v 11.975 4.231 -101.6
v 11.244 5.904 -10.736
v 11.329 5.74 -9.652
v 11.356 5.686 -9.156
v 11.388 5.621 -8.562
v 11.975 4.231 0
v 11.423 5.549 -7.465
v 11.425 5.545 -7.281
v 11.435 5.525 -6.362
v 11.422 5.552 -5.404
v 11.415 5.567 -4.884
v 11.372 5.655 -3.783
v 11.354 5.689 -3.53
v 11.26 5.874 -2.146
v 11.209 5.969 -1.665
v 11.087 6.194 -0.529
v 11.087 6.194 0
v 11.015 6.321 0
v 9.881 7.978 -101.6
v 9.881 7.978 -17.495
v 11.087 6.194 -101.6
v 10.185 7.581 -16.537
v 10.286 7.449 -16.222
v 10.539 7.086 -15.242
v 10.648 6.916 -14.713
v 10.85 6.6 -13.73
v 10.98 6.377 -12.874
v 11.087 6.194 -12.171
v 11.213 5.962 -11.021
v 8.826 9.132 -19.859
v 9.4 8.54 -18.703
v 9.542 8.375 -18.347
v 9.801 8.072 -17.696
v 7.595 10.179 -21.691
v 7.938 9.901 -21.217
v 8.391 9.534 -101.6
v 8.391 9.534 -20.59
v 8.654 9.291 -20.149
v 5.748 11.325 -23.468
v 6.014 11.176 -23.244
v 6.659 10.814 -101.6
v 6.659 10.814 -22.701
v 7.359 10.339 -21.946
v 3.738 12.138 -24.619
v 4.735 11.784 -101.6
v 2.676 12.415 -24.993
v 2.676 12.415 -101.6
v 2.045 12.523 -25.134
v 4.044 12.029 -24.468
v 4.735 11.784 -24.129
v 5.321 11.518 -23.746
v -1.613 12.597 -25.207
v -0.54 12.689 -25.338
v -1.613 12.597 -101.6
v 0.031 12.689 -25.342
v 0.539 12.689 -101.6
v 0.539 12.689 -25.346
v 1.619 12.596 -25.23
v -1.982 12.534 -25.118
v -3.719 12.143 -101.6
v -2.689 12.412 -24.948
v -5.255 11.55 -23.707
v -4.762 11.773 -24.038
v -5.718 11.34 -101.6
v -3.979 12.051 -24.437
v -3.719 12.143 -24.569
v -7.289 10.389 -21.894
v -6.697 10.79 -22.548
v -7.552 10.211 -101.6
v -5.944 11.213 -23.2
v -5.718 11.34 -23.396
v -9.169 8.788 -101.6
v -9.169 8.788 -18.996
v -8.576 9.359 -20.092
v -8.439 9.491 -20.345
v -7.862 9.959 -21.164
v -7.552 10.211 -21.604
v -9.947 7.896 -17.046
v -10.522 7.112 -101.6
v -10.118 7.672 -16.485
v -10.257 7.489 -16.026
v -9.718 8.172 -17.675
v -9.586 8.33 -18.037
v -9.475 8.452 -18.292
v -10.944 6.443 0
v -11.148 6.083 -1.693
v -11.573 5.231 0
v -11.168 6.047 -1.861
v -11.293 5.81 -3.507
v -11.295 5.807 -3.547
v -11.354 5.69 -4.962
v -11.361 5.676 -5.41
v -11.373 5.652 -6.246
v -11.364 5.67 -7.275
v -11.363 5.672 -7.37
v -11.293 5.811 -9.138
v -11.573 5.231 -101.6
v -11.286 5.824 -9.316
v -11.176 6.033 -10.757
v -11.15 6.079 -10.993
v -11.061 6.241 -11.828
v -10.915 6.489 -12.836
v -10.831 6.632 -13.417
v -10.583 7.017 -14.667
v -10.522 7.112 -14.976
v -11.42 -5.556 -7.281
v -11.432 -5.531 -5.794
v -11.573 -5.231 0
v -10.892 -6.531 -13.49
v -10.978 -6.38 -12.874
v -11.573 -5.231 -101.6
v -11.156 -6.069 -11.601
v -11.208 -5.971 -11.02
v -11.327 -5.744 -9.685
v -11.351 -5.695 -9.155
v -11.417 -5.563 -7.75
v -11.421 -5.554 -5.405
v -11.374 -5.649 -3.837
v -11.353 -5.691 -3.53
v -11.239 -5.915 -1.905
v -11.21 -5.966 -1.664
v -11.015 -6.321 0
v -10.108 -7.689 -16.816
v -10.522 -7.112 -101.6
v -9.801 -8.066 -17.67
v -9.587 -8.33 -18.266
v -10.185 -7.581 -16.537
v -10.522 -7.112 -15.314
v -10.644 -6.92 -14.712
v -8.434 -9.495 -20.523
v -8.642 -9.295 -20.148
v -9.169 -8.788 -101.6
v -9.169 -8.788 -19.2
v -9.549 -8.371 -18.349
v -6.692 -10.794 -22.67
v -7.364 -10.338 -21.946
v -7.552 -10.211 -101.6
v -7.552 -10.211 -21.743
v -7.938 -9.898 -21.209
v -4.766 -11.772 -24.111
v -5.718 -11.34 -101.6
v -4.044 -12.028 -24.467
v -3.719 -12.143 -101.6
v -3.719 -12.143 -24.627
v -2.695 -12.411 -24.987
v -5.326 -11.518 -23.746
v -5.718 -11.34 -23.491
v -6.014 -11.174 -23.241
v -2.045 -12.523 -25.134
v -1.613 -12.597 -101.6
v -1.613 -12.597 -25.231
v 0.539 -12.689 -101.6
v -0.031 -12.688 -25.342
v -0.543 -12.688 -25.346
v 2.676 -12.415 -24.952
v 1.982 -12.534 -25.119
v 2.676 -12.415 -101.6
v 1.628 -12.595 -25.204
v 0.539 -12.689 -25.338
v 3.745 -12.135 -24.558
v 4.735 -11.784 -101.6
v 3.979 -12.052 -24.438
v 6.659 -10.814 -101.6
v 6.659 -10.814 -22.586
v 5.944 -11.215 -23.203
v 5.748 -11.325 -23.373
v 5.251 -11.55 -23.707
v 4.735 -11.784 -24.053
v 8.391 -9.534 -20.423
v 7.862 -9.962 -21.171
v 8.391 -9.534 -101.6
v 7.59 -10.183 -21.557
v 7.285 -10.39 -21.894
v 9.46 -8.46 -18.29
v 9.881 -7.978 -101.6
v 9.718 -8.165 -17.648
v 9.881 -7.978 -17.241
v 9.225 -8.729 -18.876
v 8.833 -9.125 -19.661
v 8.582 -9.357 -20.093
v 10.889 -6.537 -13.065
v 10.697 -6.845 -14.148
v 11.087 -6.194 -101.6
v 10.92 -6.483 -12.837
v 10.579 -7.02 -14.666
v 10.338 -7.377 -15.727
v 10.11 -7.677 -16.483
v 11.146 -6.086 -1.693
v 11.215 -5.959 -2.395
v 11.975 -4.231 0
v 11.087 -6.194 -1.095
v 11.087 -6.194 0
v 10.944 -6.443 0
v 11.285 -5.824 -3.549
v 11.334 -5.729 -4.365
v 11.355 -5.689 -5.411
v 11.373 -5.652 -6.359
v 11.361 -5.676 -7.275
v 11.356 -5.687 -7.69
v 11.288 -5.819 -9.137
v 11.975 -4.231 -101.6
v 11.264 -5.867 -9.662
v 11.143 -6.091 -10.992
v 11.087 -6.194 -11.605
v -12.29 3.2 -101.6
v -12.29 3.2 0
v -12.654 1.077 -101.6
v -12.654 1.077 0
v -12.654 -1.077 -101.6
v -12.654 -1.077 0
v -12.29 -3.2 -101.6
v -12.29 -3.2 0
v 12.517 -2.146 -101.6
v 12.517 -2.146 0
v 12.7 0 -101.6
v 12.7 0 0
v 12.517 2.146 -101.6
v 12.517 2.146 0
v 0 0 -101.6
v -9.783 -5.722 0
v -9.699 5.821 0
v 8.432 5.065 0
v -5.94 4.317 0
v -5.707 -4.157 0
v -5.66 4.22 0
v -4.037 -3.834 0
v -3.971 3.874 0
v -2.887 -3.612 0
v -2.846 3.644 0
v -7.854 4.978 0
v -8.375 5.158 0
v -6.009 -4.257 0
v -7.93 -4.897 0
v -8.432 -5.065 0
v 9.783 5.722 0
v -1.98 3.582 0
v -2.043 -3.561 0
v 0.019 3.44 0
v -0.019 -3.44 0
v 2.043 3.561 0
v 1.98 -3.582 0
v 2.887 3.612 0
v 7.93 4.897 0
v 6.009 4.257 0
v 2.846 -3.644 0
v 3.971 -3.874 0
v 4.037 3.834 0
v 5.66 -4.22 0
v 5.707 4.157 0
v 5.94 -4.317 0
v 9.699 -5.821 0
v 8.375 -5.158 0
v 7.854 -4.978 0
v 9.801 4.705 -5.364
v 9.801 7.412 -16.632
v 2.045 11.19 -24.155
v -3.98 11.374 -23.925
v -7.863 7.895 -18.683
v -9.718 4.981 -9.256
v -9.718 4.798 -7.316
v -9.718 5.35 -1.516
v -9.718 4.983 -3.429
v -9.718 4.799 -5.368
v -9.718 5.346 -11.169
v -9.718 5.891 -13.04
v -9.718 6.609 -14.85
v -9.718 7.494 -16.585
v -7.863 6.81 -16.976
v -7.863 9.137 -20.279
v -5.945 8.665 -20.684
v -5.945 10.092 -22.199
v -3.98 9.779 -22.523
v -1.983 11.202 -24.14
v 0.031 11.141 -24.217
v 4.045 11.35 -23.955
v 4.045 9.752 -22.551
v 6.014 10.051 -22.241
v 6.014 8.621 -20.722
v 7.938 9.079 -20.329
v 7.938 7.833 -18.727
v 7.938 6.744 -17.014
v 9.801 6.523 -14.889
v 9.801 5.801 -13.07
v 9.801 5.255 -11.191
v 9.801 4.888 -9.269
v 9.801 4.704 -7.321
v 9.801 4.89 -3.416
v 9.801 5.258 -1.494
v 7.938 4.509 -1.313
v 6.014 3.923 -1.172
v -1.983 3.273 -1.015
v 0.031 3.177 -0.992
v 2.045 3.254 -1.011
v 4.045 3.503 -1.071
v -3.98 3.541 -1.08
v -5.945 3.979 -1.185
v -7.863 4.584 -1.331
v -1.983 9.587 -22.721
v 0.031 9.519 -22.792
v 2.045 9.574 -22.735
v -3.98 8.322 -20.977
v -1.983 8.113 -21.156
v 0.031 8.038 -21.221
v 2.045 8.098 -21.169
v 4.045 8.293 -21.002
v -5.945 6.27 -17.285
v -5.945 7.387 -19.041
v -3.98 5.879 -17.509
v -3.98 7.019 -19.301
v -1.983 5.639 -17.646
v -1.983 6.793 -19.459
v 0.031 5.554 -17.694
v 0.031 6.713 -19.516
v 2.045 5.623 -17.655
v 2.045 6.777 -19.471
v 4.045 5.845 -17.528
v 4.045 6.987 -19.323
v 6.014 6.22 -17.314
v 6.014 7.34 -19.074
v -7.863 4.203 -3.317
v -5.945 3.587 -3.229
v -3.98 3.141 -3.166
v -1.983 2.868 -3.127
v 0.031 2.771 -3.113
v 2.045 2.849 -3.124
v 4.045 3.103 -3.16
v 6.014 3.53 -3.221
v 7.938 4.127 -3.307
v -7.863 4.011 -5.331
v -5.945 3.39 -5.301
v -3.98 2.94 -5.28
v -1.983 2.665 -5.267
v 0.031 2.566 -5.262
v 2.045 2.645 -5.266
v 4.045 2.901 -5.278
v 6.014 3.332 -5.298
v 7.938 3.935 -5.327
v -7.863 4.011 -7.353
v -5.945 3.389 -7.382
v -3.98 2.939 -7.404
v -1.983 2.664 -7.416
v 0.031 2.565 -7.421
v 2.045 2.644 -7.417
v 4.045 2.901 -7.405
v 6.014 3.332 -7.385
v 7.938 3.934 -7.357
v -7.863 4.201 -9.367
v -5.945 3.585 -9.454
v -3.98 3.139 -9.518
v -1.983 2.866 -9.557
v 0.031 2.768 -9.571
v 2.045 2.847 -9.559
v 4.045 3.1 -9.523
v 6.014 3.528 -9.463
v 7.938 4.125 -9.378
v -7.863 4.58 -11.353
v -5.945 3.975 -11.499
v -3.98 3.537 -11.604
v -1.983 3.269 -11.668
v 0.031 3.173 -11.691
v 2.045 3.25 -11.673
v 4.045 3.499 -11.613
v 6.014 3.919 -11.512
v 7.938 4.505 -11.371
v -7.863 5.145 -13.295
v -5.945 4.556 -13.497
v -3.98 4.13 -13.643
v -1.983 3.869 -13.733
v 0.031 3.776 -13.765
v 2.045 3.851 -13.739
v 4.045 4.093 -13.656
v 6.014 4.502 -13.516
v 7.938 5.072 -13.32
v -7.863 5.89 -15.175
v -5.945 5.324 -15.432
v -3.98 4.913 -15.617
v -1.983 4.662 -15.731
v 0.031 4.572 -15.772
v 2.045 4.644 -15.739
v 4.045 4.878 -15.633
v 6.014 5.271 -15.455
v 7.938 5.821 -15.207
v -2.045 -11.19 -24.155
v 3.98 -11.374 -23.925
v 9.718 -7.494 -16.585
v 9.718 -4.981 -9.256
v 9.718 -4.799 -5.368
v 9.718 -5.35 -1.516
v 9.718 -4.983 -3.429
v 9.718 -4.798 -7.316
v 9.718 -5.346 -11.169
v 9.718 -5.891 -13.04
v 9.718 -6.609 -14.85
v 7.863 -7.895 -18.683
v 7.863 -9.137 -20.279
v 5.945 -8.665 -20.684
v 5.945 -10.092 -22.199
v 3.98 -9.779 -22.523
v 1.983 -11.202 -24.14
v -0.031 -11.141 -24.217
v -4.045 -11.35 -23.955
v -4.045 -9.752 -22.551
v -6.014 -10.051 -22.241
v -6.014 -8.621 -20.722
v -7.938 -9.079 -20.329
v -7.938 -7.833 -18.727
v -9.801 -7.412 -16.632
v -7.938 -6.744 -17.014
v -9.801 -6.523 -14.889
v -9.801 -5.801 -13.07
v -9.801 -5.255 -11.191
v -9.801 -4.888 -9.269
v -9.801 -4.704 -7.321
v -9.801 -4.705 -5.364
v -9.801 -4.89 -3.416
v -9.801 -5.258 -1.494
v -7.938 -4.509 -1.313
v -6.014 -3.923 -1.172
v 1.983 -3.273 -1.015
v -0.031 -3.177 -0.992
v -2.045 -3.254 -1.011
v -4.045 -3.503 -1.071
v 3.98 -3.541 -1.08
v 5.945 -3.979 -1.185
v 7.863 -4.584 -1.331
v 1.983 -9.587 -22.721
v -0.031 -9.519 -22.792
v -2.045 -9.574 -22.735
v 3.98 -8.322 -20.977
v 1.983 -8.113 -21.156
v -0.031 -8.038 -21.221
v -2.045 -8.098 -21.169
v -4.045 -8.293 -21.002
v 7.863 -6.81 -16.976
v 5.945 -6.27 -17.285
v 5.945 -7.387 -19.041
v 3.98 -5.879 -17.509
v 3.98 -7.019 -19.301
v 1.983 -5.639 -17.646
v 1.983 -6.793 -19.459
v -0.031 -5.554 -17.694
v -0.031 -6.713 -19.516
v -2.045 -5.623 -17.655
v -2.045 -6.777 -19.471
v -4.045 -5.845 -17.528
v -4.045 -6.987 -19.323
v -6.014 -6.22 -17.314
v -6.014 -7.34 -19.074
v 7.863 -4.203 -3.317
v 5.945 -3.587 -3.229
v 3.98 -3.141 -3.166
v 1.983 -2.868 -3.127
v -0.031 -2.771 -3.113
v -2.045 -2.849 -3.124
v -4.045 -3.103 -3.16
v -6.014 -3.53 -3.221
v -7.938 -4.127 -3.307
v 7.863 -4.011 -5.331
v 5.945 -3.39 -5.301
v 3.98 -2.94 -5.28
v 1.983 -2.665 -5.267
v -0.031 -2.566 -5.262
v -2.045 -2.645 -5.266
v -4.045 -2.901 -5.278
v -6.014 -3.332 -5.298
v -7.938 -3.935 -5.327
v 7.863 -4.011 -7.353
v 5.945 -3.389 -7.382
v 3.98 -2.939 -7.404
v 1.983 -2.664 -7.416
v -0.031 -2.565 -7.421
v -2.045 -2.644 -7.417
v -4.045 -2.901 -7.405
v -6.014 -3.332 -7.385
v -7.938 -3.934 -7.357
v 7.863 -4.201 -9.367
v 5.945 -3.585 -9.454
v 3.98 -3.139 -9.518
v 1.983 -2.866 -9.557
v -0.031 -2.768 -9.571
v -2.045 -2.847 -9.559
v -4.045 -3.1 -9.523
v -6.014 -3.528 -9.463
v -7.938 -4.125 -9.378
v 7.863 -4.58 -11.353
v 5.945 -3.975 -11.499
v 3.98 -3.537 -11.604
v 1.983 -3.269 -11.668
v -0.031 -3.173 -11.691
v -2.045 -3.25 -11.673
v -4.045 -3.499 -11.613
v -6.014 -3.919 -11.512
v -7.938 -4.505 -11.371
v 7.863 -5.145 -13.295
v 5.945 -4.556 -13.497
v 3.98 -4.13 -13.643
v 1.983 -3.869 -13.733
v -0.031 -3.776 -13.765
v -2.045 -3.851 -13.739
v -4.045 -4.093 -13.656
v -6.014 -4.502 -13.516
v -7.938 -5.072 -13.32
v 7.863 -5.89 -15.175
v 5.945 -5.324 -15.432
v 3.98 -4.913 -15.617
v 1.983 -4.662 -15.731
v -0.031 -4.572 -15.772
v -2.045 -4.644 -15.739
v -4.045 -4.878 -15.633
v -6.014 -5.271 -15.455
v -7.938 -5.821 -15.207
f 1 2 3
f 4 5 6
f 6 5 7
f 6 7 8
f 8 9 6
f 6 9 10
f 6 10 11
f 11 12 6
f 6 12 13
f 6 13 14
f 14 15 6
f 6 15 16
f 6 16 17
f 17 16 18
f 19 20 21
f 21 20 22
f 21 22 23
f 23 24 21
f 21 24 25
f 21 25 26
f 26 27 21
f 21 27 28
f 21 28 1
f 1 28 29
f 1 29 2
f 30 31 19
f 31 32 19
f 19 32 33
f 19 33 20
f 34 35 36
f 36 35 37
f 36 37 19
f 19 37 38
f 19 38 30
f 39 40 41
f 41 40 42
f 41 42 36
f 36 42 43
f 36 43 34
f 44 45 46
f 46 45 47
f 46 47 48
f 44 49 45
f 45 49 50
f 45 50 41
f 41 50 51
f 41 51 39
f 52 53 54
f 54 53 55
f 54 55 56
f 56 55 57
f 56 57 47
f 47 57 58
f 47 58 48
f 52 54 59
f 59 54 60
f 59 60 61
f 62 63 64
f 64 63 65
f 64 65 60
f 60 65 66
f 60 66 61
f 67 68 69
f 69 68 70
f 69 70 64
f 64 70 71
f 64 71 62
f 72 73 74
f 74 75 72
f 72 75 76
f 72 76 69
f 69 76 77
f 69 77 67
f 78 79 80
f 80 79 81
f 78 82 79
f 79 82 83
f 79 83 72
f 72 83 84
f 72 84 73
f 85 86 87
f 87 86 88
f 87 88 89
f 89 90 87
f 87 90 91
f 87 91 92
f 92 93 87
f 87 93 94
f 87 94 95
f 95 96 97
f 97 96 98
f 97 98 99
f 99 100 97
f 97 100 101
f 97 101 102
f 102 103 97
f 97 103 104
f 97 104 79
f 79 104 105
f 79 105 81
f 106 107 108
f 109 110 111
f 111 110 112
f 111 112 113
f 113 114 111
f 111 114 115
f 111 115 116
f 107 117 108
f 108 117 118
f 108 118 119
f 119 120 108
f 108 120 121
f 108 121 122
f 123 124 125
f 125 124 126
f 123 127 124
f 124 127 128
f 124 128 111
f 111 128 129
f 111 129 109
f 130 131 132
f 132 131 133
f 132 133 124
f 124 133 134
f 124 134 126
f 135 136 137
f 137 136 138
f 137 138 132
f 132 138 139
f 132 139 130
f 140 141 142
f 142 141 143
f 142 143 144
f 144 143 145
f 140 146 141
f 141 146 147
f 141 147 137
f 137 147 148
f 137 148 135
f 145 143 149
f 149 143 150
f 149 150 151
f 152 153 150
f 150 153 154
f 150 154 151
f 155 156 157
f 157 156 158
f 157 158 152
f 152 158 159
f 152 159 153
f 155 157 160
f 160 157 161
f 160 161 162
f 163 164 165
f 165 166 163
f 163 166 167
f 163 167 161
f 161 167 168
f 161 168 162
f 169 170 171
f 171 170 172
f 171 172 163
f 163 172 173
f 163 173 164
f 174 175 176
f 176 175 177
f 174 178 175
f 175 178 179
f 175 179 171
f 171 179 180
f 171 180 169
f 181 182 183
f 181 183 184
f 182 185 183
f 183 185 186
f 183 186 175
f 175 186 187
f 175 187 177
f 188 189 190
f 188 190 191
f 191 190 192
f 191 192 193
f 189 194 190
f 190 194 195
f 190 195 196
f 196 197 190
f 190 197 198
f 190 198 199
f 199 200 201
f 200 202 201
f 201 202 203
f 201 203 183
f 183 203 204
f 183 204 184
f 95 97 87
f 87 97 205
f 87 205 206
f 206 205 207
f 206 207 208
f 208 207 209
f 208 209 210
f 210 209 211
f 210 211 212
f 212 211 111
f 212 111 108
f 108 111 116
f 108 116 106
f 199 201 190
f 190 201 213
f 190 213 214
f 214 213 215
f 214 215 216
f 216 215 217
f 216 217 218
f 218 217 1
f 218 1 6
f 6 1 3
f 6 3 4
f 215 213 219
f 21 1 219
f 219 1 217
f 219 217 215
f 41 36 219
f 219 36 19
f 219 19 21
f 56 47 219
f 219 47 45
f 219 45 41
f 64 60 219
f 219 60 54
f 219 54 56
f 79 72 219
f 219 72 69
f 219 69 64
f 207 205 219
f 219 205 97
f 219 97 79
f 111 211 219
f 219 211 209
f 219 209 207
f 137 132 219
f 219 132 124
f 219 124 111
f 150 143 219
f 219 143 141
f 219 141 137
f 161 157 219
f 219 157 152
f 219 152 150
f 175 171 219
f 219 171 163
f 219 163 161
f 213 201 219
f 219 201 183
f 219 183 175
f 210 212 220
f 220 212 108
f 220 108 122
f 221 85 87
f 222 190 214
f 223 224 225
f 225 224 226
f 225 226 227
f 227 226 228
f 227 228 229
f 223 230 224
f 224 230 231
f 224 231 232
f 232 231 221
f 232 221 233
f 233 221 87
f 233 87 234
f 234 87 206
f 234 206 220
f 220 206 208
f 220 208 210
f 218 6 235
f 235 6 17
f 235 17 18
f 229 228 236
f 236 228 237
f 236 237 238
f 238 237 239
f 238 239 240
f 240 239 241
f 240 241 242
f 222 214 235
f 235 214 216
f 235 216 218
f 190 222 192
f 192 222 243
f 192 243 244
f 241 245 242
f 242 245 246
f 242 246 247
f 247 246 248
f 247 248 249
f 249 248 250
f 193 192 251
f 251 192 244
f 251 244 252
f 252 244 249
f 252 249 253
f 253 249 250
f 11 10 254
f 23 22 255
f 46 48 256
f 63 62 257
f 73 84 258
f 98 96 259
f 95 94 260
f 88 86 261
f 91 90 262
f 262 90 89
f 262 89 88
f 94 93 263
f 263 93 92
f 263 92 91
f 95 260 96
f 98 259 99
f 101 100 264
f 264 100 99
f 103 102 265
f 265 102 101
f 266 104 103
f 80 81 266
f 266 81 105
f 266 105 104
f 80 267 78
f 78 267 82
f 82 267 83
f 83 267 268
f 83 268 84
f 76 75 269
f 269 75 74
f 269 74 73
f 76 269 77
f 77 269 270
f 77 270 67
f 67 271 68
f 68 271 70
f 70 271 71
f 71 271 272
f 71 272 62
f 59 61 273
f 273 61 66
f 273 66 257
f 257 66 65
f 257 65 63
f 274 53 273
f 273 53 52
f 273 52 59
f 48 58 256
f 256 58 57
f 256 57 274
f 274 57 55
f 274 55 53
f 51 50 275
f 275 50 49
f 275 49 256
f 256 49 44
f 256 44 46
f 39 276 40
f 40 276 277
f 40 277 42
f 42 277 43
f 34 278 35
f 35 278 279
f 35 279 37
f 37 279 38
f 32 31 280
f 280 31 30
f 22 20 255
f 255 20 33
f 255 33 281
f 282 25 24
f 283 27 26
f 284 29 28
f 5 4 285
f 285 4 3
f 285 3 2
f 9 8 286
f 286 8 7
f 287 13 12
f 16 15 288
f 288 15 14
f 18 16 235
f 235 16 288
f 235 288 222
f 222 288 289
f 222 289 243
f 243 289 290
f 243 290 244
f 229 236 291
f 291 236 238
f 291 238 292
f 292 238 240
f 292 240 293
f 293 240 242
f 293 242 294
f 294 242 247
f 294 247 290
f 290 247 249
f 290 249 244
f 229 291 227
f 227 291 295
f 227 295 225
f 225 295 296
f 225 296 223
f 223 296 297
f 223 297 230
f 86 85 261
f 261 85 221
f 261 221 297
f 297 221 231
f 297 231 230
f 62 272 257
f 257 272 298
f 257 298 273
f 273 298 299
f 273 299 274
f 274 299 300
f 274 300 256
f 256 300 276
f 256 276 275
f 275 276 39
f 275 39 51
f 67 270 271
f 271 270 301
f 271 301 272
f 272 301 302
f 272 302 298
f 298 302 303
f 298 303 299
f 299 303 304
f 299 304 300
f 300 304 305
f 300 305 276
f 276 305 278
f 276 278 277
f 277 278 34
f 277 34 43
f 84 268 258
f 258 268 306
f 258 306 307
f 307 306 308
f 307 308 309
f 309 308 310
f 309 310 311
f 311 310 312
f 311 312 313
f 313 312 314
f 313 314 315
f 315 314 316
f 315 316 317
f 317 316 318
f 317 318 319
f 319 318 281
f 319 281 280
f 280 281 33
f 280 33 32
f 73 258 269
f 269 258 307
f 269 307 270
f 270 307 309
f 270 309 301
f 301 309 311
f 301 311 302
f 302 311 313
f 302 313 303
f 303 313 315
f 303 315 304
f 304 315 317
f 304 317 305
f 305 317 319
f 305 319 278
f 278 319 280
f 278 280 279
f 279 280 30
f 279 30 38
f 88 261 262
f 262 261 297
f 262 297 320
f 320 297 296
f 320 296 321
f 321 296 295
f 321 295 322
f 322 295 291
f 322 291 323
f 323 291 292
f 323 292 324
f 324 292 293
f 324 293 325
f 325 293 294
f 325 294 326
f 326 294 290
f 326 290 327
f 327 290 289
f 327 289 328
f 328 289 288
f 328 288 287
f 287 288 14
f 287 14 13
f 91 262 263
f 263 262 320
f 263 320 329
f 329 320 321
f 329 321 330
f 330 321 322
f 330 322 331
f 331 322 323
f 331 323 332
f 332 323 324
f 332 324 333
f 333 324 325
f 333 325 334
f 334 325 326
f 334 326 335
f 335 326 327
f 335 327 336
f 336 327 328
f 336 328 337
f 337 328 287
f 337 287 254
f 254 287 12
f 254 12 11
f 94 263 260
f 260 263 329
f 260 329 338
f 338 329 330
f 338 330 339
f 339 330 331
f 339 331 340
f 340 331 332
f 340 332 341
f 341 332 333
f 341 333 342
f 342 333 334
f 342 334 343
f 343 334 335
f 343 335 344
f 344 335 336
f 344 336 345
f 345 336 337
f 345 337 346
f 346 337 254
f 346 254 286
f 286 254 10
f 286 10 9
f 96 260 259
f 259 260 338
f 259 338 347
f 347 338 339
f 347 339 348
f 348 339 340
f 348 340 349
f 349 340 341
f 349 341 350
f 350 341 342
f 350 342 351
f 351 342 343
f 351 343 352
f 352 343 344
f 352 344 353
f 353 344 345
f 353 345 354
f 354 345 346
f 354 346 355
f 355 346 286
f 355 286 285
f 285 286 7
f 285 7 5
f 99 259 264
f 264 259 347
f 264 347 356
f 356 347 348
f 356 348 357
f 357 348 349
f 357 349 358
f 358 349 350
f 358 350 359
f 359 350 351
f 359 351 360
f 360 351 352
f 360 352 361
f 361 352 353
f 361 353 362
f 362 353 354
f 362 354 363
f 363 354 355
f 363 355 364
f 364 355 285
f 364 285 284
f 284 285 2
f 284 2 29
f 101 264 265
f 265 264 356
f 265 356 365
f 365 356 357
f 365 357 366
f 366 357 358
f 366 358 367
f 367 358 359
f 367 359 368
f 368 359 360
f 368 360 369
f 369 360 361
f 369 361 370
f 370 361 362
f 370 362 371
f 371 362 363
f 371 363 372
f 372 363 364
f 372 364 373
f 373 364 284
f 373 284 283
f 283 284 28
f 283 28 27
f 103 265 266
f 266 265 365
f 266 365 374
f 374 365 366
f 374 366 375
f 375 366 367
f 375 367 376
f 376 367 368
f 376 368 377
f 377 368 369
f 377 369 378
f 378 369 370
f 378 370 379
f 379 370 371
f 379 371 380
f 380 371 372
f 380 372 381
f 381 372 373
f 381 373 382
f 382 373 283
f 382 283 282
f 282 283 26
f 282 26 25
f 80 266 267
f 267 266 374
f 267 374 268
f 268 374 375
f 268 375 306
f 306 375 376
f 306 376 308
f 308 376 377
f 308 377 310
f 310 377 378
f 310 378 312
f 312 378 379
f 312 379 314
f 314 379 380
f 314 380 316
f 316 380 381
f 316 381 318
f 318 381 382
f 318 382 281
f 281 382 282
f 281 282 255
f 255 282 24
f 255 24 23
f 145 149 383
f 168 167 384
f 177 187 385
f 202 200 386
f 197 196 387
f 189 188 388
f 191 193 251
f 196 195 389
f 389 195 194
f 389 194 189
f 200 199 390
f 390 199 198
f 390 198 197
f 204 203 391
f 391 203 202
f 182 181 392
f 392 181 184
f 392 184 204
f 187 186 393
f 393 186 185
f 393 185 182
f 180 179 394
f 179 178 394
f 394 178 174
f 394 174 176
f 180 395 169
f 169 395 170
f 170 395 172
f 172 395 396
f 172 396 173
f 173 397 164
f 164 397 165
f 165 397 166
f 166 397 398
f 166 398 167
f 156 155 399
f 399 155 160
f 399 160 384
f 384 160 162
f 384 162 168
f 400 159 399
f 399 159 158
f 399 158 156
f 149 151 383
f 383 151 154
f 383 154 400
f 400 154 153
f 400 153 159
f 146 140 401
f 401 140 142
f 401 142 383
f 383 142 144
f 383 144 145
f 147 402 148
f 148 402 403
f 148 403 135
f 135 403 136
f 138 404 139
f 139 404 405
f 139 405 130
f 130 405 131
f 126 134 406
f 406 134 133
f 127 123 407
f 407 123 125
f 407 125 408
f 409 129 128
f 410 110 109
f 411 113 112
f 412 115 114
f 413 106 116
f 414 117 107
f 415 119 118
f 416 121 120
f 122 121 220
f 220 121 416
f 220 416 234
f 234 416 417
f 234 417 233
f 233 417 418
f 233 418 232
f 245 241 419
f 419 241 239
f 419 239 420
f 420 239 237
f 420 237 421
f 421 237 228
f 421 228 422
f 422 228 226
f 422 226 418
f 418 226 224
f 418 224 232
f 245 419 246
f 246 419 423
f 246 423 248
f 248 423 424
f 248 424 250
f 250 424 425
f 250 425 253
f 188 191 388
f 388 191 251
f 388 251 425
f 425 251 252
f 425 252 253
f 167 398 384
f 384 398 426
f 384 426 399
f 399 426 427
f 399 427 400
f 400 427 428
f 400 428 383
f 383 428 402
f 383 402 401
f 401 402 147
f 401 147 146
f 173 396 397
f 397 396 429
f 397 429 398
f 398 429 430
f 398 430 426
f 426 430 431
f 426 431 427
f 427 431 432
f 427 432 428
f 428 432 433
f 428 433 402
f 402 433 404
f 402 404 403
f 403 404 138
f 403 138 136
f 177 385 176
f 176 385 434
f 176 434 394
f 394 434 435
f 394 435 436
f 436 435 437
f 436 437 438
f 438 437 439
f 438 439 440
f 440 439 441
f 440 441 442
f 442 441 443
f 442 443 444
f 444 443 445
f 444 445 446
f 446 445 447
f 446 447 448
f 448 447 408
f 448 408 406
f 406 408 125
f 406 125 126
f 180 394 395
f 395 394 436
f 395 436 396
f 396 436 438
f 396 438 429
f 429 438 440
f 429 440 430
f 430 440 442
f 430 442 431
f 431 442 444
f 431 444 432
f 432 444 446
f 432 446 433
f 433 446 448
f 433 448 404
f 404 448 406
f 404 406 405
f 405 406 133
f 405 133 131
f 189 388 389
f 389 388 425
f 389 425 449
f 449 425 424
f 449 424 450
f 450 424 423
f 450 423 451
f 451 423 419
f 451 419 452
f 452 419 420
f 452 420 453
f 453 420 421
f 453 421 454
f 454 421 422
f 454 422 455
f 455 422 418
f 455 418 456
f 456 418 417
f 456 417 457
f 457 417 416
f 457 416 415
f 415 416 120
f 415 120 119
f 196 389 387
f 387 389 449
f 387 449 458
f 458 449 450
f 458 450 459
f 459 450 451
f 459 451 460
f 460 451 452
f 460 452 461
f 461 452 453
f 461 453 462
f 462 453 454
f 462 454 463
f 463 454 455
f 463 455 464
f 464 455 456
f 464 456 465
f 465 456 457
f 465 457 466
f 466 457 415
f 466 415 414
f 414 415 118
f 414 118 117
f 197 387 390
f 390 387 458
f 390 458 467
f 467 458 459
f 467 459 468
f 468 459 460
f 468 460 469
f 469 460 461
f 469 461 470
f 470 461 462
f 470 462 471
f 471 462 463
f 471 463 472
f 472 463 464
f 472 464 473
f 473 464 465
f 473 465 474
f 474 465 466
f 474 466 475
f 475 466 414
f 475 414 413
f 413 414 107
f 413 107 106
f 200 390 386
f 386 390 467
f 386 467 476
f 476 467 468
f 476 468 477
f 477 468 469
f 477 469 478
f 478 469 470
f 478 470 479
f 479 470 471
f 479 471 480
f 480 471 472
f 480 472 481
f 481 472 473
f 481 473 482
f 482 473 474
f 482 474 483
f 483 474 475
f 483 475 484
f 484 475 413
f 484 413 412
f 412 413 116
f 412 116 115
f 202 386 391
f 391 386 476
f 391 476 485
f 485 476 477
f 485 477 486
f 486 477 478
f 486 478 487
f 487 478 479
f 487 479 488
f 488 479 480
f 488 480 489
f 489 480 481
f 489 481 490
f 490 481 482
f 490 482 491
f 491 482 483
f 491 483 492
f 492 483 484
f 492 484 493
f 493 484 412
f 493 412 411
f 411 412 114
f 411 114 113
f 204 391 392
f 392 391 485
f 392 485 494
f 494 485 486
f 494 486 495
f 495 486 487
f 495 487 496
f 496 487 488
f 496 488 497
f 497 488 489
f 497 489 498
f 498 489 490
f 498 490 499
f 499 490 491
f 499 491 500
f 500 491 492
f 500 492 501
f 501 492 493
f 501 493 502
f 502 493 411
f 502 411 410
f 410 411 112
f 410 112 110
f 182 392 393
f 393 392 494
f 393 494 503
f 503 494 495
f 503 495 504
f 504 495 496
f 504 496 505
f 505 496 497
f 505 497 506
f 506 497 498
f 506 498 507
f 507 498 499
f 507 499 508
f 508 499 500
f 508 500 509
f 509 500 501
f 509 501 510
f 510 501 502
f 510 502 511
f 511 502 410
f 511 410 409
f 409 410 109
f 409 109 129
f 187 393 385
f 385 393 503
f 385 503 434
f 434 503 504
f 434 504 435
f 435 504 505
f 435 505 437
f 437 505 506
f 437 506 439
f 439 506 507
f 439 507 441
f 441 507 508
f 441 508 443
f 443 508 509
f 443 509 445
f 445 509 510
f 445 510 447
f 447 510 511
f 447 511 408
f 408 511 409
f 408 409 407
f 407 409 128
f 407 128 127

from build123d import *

# Parameters (mm, degrees)
SKETCH1_W = 12.7
SKETCH1_H = 101.6


with BuildPart() as part:
    # Sketch1 → Revolve1 (revolve)
    with BuildSketch(Plane(origin=(0, 0, 0), x_dir=(1, 0, 0), z_dir=(0, 1, 0))):
        with Locations((6.35, 50.8)):
            Rectangle(SKETCH1_W, SKETCH1_H)
    revolve(axis=Axis((0, 0, 0), (0, 0, -1)))

    # Sketch5 → Cut-Revolve1 (revolve, cut)
    with BuildSketch(Plane(origin=(0, 25.4, 0), x_dir=(-1, 0, 0), z_dir=(0, -1, 0))):
        with BuildLine():
            Line((22.718491956, 6.35), (-23.001508044, 6.35))
            ThreePointArc((-23.001508044, 6.35), (-0.141508044, -16.51), (22.718491956, 6.35))
        make_face()
    revolve(axis=Axis((-22.718491956, 25.4, -6.35), (1, 0, 0)), mode=Mode.SUBTRACT)

    # Sketch6 → Cut-Revolve2 (revolve, cut)
    with BuildSketch(Plane(origin=(0, -25.4, 0), x_dir=(1, 0, 0), z_dir=(0, 1, 0))):
        with BuildLine():
            Line((22.718491956, 6.35), (-23.001508044, 6.35))
            ThreePointArc((-23.001508044, 6.35), (-0.141508044, -16.51), (22.718491956, 6.35))
        make_face()
    revolve(axis=Axis((22.718491956, -25.4, -6.35), (-1, 0, 0)), mode=Mode.SUBTRACT)


solid = part.part
